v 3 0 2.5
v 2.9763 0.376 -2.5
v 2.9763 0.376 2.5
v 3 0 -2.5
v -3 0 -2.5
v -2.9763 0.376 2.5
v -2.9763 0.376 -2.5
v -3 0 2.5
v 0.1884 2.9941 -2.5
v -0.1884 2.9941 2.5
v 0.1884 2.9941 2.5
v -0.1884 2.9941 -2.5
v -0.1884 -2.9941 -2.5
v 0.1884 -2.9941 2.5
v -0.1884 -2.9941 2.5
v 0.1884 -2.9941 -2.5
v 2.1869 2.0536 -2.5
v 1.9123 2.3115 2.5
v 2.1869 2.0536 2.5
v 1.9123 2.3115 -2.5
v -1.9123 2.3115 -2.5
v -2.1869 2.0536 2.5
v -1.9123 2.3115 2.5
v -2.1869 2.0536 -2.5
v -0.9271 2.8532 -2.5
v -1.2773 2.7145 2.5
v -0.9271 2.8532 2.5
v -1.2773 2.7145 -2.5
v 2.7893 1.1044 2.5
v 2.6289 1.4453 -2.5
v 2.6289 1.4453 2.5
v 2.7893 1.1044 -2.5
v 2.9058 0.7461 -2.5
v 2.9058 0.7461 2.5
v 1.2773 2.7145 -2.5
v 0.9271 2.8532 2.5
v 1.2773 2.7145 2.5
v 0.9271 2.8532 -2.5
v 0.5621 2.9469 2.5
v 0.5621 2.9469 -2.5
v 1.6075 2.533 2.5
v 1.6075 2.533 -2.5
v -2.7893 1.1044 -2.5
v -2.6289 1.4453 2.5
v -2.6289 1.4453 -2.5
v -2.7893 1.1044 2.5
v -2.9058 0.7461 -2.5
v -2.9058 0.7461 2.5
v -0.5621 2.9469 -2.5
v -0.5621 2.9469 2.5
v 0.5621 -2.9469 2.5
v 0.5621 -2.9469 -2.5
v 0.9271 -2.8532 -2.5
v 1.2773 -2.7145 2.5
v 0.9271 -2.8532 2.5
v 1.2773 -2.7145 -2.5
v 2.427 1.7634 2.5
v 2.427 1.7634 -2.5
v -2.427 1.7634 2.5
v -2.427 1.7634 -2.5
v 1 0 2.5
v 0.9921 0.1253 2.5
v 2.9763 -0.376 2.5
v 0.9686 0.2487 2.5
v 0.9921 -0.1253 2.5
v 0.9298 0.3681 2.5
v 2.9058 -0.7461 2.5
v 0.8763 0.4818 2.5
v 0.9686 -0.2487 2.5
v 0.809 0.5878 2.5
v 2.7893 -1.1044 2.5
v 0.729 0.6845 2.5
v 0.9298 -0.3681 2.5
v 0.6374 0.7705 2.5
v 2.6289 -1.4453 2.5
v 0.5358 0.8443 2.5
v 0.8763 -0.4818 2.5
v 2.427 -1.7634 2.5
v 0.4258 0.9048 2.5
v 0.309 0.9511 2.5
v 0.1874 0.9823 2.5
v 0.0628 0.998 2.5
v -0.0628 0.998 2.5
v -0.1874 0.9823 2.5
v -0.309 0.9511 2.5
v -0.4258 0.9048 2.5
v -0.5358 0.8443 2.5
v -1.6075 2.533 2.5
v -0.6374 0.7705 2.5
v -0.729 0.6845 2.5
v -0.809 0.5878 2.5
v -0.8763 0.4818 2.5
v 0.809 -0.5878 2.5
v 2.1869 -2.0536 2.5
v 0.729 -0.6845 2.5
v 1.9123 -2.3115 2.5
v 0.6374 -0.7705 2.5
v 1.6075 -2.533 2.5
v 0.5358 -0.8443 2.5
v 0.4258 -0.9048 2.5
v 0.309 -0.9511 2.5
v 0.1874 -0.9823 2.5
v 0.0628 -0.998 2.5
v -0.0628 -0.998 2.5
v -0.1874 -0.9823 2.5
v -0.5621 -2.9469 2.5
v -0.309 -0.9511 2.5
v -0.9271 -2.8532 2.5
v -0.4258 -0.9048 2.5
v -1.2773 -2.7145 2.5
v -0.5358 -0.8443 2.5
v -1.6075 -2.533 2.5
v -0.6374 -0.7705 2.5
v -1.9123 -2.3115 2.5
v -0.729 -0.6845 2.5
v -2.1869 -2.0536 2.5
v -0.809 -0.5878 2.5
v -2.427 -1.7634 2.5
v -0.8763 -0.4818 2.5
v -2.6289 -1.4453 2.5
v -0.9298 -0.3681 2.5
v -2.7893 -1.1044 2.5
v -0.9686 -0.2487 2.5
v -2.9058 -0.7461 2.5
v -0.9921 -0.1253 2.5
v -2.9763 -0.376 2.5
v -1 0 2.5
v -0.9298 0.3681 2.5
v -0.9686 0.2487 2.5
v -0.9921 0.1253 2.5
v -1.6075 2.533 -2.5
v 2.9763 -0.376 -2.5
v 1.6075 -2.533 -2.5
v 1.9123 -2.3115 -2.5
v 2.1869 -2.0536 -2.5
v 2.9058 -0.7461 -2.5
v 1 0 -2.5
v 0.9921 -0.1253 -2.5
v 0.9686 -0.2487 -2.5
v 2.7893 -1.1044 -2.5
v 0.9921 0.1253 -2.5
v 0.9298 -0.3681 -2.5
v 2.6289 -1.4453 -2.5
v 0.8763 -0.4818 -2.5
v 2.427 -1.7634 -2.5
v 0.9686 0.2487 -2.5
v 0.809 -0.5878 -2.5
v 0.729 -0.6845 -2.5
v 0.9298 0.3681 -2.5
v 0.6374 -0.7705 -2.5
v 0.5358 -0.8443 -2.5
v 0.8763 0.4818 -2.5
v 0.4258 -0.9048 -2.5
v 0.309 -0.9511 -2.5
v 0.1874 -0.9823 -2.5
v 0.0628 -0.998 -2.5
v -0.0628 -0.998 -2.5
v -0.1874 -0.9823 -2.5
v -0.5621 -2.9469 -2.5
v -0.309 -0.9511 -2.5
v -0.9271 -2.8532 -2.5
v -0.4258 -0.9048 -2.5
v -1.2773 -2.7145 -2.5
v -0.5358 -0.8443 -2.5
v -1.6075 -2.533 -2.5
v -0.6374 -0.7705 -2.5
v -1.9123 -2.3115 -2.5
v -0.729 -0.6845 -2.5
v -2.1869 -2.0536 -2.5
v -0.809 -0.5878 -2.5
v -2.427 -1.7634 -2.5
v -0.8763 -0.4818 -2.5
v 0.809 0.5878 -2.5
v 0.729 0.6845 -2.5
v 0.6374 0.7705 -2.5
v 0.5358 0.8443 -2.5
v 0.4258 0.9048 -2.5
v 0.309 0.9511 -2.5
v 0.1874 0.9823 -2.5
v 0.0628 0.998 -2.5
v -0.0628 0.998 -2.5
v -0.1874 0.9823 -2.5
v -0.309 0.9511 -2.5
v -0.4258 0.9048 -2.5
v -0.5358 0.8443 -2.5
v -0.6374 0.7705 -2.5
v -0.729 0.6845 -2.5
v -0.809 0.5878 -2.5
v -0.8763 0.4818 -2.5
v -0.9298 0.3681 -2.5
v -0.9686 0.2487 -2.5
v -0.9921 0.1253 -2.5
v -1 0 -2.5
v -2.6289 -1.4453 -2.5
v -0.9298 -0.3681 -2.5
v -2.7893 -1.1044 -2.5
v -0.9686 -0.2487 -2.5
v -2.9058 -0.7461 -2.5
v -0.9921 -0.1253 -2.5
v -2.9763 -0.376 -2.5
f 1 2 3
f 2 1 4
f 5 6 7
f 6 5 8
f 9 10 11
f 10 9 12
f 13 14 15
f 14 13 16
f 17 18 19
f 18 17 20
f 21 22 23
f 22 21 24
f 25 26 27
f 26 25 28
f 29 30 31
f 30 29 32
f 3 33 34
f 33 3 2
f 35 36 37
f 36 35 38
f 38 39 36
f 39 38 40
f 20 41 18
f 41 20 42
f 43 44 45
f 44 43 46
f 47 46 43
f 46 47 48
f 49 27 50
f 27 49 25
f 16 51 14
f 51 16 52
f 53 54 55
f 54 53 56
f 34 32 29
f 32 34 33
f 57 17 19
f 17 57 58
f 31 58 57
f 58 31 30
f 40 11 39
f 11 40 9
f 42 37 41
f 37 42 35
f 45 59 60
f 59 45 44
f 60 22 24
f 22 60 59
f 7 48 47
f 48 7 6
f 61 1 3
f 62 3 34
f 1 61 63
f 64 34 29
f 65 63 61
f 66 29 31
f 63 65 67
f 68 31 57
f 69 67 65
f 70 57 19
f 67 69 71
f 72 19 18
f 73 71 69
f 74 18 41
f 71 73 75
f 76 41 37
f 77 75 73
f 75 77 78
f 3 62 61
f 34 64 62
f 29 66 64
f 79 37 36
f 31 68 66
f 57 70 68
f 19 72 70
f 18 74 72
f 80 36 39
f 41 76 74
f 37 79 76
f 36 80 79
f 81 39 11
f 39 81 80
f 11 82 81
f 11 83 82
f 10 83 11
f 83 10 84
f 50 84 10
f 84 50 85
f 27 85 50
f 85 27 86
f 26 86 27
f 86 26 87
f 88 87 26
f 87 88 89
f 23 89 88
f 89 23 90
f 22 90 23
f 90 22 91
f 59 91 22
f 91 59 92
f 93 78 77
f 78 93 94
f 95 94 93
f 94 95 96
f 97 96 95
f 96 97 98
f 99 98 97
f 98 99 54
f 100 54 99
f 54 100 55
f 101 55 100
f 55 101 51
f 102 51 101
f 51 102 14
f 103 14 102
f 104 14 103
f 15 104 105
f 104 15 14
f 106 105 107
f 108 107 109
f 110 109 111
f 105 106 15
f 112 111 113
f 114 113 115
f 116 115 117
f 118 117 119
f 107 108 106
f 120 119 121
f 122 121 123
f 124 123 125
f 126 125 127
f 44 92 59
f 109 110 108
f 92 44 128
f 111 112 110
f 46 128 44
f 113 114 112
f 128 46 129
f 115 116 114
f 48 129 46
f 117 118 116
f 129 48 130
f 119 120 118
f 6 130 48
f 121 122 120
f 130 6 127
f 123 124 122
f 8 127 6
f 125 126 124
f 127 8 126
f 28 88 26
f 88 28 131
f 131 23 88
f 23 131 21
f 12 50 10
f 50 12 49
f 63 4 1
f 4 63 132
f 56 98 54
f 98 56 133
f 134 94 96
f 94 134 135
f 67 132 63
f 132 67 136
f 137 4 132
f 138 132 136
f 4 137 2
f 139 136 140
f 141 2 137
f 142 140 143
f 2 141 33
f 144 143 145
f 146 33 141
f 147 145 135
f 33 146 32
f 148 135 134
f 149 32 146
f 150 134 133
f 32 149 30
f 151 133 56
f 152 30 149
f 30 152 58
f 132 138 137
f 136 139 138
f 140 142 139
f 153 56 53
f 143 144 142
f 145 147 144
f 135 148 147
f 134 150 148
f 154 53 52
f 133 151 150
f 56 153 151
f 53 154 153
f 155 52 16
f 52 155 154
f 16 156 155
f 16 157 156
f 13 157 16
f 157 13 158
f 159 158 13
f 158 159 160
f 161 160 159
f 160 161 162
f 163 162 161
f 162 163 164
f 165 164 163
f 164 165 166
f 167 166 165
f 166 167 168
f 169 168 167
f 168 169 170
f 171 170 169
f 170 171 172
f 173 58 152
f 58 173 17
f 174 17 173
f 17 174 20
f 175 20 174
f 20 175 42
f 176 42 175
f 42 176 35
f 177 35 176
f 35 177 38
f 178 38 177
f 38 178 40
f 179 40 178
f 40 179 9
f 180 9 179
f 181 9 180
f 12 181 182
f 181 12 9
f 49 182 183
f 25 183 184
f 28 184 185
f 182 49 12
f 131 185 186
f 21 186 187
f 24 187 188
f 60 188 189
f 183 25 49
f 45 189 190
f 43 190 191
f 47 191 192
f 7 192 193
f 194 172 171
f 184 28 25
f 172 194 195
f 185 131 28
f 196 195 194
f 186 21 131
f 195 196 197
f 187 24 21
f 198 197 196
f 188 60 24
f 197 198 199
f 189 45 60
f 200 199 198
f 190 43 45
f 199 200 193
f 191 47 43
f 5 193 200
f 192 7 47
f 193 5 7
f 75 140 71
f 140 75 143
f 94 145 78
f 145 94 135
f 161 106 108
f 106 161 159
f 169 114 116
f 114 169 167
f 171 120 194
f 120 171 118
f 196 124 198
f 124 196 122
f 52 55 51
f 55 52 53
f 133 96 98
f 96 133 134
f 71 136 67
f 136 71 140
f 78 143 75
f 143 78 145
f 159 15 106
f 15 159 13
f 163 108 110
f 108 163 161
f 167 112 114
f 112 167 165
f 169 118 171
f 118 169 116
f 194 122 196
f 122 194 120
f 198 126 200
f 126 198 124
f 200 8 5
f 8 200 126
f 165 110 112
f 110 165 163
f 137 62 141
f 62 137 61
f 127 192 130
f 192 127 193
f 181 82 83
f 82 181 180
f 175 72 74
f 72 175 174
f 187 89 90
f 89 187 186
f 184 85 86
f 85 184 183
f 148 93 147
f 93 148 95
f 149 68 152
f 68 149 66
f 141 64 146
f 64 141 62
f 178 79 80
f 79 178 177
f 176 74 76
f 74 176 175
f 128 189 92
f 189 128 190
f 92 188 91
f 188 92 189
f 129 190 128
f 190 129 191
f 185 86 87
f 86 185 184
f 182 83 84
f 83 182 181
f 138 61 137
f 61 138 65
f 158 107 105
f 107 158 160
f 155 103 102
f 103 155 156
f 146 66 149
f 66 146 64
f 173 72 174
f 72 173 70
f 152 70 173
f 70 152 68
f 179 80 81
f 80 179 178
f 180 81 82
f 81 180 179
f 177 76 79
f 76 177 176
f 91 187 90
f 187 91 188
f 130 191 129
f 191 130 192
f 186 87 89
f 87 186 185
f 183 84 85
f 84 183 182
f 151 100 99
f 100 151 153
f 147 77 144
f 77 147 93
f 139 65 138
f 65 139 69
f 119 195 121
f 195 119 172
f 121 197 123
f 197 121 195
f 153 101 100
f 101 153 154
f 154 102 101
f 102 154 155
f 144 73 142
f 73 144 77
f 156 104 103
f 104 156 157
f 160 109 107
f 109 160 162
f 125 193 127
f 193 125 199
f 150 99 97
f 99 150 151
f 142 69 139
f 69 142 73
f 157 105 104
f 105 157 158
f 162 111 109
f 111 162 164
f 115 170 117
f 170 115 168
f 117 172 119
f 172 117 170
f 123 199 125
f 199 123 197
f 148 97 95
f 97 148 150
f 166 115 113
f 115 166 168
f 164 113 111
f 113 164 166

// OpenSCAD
$fn = 50;


difference() {
	union() {
		translate(v = [0, 0, -2.5000000000]) {
			cylinder(h = 5, r = 3.0000000000);
		}
	}
	union() {
		translate(v = [0, 0, -100.0000000000]) {
			cylinder(h = 200, r = 1.0000000000);
		}
	}
}
